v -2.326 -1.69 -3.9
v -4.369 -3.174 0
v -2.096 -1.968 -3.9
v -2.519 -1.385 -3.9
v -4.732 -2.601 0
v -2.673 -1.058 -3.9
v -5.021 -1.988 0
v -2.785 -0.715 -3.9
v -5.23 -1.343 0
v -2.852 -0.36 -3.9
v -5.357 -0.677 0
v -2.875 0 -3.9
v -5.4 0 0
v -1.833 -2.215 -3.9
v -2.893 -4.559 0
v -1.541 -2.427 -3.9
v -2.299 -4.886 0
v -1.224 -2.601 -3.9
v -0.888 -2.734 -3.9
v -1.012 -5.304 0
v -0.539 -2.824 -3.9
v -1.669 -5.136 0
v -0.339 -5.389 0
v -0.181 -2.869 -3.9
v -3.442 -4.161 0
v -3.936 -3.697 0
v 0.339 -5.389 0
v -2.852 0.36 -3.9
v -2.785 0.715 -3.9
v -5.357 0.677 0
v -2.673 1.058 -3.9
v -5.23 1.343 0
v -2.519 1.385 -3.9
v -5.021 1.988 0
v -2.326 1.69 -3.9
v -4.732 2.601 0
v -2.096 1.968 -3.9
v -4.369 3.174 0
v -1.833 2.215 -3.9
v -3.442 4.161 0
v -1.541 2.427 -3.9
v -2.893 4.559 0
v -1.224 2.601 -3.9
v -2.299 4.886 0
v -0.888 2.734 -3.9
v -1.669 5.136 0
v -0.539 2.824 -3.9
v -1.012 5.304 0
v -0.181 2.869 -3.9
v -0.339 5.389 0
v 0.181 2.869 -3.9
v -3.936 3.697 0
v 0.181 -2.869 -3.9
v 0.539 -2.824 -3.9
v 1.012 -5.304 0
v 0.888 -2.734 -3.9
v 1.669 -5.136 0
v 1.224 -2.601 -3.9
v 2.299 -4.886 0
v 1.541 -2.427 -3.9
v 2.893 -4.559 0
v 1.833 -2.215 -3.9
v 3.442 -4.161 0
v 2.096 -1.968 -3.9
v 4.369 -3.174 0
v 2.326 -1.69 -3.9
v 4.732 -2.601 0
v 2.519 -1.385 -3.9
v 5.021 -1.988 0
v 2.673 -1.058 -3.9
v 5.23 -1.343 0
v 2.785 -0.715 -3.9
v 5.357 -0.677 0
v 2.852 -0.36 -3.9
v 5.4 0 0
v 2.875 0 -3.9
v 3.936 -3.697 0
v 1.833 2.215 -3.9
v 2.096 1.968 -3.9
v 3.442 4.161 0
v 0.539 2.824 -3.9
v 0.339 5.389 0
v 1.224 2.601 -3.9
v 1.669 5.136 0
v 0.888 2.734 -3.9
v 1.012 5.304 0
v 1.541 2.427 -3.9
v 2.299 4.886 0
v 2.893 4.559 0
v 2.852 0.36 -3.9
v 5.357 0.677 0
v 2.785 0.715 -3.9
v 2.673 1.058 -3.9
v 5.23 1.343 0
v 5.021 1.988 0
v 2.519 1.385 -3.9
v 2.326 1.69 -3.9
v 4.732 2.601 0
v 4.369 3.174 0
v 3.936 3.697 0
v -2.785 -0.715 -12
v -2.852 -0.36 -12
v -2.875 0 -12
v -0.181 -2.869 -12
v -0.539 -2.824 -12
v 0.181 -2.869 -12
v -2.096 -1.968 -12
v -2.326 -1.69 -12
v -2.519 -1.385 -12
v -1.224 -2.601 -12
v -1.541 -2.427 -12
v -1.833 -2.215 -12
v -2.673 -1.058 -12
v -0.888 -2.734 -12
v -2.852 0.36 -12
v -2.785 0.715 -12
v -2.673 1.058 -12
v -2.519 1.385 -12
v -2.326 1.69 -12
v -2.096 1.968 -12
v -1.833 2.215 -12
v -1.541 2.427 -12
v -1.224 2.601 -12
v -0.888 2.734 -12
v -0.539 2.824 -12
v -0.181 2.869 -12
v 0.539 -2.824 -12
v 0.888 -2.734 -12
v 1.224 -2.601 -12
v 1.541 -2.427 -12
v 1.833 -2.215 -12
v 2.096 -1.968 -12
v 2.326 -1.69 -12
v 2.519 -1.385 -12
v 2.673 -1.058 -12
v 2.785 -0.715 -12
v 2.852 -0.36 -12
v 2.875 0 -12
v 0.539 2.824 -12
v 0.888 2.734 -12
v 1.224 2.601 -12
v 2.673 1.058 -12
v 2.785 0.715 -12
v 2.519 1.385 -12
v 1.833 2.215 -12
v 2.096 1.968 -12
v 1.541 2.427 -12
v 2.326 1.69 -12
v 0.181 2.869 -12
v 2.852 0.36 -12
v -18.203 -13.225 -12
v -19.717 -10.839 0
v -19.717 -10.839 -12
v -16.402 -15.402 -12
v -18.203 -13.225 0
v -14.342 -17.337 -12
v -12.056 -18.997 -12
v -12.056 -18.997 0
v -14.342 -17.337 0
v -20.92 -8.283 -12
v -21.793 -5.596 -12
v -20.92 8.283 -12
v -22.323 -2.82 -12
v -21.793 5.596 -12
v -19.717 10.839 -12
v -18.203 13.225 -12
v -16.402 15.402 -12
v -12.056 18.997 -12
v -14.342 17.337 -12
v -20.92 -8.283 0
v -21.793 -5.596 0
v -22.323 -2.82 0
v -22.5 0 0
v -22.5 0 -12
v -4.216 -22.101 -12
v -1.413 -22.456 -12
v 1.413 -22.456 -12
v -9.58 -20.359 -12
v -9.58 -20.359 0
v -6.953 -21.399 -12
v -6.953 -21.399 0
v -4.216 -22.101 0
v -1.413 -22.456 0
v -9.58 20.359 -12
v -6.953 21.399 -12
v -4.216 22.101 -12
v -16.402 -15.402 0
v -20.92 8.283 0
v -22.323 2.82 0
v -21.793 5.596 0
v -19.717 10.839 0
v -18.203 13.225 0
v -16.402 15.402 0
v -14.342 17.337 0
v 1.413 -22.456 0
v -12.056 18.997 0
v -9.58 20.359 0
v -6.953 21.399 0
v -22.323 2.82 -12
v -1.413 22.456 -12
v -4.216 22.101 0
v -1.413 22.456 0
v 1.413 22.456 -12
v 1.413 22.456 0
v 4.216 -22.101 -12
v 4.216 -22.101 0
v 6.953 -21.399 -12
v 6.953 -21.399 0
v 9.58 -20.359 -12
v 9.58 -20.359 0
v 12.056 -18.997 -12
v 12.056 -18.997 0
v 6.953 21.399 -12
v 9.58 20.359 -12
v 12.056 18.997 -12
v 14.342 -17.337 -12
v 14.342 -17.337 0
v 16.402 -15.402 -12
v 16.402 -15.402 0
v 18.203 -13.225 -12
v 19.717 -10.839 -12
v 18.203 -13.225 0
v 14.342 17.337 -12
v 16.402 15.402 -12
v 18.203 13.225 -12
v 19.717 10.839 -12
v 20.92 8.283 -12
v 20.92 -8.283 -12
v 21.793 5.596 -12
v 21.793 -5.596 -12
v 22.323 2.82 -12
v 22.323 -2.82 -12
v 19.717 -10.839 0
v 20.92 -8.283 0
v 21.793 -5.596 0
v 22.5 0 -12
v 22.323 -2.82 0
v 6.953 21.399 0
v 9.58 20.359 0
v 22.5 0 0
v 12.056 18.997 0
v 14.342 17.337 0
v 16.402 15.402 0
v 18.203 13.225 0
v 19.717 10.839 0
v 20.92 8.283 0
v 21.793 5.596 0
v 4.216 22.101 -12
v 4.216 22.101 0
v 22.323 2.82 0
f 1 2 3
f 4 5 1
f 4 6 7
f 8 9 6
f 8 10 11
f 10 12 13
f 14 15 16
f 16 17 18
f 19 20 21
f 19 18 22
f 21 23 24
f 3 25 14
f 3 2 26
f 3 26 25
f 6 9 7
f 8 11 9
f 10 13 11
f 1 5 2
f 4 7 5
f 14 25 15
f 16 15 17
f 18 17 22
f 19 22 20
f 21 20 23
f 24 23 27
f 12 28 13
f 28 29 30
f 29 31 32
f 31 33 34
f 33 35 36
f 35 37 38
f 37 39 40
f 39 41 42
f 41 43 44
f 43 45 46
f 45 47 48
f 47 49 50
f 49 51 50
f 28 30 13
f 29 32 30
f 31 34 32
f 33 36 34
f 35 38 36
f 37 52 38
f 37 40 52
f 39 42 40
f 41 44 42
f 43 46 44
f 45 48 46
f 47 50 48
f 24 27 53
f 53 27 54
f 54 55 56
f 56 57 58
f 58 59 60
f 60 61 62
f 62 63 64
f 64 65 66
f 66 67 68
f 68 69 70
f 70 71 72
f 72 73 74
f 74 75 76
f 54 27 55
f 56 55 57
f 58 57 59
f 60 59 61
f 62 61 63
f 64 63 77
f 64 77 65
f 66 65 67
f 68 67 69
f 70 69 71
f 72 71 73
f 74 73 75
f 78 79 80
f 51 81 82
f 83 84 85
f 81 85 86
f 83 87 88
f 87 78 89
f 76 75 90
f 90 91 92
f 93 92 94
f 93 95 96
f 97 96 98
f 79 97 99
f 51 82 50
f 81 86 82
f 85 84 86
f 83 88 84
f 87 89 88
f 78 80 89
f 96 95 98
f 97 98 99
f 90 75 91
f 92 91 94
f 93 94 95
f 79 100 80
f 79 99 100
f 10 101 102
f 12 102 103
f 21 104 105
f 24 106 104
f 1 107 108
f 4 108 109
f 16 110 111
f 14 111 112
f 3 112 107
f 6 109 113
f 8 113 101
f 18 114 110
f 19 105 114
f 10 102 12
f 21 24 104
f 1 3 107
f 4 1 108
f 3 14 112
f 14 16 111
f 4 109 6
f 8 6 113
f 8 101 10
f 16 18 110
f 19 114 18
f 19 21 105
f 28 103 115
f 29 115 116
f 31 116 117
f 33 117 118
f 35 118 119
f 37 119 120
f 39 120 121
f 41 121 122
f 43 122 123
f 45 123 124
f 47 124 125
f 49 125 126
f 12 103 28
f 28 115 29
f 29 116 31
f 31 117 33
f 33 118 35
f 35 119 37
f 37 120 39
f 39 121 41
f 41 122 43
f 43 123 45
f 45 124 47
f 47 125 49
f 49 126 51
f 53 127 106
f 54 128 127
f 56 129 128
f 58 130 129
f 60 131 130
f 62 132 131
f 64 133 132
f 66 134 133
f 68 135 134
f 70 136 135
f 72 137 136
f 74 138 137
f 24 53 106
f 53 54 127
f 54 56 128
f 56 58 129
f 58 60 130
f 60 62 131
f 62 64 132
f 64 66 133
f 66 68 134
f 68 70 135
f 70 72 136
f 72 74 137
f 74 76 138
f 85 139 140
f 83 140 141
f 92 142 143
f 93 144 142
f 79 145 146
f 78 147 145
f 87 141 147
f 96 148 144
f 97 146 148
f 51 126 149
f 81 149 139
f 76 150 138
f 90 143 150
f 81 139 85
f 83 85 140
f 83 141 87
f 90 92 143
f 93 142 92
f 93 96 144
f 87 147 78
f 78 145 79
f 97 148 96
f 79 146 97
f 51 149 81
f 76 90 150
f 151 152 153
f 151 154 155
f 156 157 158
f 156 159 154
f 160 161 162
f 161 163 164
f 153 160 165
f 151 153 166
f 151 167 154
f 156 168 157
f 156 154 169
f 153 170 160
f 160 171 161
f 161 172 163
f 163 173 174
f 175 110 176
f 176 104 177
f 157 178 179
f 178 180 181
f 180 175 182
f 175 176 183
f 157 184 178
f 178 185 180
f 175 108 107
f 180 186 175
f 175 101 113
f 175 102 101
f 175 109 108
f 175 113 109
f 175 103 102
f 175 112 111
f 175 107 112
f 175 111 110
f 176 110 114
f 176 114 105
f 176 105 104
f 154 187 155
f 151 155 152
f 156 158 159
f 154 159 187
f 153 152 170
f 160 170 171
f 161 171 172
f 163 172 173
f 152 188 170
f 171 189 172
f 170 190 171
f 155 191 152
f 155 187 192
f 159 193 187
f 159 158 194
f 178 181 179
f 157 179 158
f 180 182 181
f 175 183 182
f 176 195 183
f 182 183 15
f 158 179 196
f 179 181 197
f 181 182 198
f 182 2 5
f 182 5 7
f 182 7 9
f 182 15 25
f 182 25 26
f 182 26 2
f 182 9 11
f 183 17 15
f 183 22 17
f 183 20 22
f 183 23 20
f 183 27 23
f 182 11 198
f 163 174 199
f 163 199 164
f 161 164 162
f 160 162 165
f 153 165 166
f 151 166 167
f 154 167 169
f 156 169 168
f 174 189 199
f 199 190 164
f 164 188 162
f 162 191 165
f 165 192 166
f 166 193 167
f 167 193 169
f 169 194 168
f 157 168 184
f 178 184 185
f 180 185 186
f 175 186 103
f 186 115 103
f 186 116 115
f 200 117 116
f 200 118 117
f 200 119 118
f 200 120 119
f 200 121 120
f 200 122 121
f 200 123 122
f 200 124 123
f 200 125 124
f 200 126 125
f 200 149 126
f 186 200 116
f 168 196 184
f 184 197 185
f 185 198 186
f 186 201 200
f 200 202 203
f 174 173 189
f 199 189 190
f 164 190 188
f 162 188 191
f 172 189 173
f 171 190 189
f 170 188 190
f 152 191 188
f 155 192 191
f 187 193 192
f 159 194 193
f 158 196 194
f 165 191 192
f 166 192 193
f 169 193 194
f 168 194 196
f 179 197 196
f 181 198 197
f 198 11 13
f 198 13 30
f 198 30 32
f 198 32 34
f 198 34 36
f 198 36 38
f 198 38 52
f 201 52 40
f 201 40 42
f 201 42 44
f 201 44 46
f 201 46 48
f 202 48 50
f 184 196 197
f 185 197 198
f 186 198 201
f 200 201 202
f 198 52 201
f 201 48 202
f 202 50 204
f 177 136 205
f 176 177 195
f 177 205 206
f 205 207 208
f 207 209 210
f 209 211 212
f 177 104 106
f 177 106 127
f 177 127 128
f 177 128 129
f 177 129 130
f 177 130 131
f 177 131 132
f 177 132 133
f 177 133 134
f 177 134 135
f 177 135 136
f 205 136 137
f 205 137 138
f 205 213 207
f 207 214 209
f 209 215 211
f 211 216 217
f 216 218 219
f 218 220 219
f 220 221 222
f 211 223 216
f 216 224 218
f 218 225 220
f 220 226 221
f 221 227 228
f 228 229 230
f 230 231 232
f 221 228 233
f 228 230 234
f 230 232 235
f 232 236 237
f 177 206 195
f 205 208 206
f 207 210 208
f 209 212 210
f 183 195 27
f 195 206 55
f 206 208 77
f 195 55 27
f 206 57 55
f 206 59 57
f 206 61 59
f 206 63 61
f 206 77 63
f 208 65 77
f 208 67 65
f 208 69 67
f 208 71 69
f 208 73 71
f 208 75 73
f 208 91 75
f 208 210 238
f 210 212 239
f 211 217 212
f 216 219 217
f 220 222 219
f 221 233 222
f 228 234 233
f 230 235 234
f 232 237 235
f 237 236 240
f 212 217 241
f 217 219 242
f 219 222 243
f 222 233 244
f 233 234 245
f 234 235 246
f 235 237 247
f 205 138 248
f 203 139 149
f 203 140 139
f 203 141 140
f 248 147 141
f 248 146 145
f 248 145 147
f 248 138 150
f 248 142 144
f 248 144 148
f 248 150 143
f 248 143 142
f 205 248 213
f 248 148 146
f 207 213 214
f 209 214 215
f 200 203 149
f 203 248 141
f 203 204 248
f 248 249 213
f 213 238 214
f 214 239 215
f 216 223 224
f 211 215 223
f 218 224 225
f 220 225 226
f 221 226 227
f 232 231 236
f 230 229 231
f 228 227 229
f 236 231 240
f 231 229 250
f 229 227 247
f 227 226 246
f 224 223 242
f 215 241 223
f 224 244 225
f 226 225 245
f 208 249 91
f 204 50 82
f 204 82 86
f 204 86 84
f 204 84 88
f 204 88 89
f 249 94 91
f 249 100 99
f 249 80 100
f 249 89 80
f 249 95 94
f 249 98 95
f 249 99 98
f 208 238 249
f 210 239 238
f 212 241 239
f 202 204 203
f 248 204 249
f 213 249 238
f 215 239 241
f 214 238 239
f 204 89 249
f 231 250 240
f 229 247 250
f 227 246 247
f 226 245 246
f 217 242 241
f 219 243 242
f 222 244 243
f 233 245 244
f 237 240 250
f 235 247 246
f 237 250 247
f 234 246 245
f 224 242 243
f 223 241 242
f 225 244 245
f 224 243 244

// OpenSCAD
$fn = 50;

difference() {
	union() {
		translate(v = [0, 0, -12.0]) {
			cylinder(h = 12, r = 22.5);
		}
	}
	union() {
		translate(v = [0, 0, 0]) {
			rotate(a = [0, 0, 0]) {
				difference() {
					union() {
						translate(v = [0, 0, -15.0]) {
							cylinder(h = 15, r = 2.6);
						}
						translate(v = [0, 0, -3.9]) {
							cylinder(h = 3.9, r1 = 2.875, r2 = 5.4);
						}
						translate(v = [0, 0, -15.0]) {
							cylinder(h = 15, r = 2.875);
						}
						translate(v = [0, 0, -15.0]) {
							cylinder(h = 15, r = 2.6);
						}
					}
					union();
				}
			}
		}
	}
}
